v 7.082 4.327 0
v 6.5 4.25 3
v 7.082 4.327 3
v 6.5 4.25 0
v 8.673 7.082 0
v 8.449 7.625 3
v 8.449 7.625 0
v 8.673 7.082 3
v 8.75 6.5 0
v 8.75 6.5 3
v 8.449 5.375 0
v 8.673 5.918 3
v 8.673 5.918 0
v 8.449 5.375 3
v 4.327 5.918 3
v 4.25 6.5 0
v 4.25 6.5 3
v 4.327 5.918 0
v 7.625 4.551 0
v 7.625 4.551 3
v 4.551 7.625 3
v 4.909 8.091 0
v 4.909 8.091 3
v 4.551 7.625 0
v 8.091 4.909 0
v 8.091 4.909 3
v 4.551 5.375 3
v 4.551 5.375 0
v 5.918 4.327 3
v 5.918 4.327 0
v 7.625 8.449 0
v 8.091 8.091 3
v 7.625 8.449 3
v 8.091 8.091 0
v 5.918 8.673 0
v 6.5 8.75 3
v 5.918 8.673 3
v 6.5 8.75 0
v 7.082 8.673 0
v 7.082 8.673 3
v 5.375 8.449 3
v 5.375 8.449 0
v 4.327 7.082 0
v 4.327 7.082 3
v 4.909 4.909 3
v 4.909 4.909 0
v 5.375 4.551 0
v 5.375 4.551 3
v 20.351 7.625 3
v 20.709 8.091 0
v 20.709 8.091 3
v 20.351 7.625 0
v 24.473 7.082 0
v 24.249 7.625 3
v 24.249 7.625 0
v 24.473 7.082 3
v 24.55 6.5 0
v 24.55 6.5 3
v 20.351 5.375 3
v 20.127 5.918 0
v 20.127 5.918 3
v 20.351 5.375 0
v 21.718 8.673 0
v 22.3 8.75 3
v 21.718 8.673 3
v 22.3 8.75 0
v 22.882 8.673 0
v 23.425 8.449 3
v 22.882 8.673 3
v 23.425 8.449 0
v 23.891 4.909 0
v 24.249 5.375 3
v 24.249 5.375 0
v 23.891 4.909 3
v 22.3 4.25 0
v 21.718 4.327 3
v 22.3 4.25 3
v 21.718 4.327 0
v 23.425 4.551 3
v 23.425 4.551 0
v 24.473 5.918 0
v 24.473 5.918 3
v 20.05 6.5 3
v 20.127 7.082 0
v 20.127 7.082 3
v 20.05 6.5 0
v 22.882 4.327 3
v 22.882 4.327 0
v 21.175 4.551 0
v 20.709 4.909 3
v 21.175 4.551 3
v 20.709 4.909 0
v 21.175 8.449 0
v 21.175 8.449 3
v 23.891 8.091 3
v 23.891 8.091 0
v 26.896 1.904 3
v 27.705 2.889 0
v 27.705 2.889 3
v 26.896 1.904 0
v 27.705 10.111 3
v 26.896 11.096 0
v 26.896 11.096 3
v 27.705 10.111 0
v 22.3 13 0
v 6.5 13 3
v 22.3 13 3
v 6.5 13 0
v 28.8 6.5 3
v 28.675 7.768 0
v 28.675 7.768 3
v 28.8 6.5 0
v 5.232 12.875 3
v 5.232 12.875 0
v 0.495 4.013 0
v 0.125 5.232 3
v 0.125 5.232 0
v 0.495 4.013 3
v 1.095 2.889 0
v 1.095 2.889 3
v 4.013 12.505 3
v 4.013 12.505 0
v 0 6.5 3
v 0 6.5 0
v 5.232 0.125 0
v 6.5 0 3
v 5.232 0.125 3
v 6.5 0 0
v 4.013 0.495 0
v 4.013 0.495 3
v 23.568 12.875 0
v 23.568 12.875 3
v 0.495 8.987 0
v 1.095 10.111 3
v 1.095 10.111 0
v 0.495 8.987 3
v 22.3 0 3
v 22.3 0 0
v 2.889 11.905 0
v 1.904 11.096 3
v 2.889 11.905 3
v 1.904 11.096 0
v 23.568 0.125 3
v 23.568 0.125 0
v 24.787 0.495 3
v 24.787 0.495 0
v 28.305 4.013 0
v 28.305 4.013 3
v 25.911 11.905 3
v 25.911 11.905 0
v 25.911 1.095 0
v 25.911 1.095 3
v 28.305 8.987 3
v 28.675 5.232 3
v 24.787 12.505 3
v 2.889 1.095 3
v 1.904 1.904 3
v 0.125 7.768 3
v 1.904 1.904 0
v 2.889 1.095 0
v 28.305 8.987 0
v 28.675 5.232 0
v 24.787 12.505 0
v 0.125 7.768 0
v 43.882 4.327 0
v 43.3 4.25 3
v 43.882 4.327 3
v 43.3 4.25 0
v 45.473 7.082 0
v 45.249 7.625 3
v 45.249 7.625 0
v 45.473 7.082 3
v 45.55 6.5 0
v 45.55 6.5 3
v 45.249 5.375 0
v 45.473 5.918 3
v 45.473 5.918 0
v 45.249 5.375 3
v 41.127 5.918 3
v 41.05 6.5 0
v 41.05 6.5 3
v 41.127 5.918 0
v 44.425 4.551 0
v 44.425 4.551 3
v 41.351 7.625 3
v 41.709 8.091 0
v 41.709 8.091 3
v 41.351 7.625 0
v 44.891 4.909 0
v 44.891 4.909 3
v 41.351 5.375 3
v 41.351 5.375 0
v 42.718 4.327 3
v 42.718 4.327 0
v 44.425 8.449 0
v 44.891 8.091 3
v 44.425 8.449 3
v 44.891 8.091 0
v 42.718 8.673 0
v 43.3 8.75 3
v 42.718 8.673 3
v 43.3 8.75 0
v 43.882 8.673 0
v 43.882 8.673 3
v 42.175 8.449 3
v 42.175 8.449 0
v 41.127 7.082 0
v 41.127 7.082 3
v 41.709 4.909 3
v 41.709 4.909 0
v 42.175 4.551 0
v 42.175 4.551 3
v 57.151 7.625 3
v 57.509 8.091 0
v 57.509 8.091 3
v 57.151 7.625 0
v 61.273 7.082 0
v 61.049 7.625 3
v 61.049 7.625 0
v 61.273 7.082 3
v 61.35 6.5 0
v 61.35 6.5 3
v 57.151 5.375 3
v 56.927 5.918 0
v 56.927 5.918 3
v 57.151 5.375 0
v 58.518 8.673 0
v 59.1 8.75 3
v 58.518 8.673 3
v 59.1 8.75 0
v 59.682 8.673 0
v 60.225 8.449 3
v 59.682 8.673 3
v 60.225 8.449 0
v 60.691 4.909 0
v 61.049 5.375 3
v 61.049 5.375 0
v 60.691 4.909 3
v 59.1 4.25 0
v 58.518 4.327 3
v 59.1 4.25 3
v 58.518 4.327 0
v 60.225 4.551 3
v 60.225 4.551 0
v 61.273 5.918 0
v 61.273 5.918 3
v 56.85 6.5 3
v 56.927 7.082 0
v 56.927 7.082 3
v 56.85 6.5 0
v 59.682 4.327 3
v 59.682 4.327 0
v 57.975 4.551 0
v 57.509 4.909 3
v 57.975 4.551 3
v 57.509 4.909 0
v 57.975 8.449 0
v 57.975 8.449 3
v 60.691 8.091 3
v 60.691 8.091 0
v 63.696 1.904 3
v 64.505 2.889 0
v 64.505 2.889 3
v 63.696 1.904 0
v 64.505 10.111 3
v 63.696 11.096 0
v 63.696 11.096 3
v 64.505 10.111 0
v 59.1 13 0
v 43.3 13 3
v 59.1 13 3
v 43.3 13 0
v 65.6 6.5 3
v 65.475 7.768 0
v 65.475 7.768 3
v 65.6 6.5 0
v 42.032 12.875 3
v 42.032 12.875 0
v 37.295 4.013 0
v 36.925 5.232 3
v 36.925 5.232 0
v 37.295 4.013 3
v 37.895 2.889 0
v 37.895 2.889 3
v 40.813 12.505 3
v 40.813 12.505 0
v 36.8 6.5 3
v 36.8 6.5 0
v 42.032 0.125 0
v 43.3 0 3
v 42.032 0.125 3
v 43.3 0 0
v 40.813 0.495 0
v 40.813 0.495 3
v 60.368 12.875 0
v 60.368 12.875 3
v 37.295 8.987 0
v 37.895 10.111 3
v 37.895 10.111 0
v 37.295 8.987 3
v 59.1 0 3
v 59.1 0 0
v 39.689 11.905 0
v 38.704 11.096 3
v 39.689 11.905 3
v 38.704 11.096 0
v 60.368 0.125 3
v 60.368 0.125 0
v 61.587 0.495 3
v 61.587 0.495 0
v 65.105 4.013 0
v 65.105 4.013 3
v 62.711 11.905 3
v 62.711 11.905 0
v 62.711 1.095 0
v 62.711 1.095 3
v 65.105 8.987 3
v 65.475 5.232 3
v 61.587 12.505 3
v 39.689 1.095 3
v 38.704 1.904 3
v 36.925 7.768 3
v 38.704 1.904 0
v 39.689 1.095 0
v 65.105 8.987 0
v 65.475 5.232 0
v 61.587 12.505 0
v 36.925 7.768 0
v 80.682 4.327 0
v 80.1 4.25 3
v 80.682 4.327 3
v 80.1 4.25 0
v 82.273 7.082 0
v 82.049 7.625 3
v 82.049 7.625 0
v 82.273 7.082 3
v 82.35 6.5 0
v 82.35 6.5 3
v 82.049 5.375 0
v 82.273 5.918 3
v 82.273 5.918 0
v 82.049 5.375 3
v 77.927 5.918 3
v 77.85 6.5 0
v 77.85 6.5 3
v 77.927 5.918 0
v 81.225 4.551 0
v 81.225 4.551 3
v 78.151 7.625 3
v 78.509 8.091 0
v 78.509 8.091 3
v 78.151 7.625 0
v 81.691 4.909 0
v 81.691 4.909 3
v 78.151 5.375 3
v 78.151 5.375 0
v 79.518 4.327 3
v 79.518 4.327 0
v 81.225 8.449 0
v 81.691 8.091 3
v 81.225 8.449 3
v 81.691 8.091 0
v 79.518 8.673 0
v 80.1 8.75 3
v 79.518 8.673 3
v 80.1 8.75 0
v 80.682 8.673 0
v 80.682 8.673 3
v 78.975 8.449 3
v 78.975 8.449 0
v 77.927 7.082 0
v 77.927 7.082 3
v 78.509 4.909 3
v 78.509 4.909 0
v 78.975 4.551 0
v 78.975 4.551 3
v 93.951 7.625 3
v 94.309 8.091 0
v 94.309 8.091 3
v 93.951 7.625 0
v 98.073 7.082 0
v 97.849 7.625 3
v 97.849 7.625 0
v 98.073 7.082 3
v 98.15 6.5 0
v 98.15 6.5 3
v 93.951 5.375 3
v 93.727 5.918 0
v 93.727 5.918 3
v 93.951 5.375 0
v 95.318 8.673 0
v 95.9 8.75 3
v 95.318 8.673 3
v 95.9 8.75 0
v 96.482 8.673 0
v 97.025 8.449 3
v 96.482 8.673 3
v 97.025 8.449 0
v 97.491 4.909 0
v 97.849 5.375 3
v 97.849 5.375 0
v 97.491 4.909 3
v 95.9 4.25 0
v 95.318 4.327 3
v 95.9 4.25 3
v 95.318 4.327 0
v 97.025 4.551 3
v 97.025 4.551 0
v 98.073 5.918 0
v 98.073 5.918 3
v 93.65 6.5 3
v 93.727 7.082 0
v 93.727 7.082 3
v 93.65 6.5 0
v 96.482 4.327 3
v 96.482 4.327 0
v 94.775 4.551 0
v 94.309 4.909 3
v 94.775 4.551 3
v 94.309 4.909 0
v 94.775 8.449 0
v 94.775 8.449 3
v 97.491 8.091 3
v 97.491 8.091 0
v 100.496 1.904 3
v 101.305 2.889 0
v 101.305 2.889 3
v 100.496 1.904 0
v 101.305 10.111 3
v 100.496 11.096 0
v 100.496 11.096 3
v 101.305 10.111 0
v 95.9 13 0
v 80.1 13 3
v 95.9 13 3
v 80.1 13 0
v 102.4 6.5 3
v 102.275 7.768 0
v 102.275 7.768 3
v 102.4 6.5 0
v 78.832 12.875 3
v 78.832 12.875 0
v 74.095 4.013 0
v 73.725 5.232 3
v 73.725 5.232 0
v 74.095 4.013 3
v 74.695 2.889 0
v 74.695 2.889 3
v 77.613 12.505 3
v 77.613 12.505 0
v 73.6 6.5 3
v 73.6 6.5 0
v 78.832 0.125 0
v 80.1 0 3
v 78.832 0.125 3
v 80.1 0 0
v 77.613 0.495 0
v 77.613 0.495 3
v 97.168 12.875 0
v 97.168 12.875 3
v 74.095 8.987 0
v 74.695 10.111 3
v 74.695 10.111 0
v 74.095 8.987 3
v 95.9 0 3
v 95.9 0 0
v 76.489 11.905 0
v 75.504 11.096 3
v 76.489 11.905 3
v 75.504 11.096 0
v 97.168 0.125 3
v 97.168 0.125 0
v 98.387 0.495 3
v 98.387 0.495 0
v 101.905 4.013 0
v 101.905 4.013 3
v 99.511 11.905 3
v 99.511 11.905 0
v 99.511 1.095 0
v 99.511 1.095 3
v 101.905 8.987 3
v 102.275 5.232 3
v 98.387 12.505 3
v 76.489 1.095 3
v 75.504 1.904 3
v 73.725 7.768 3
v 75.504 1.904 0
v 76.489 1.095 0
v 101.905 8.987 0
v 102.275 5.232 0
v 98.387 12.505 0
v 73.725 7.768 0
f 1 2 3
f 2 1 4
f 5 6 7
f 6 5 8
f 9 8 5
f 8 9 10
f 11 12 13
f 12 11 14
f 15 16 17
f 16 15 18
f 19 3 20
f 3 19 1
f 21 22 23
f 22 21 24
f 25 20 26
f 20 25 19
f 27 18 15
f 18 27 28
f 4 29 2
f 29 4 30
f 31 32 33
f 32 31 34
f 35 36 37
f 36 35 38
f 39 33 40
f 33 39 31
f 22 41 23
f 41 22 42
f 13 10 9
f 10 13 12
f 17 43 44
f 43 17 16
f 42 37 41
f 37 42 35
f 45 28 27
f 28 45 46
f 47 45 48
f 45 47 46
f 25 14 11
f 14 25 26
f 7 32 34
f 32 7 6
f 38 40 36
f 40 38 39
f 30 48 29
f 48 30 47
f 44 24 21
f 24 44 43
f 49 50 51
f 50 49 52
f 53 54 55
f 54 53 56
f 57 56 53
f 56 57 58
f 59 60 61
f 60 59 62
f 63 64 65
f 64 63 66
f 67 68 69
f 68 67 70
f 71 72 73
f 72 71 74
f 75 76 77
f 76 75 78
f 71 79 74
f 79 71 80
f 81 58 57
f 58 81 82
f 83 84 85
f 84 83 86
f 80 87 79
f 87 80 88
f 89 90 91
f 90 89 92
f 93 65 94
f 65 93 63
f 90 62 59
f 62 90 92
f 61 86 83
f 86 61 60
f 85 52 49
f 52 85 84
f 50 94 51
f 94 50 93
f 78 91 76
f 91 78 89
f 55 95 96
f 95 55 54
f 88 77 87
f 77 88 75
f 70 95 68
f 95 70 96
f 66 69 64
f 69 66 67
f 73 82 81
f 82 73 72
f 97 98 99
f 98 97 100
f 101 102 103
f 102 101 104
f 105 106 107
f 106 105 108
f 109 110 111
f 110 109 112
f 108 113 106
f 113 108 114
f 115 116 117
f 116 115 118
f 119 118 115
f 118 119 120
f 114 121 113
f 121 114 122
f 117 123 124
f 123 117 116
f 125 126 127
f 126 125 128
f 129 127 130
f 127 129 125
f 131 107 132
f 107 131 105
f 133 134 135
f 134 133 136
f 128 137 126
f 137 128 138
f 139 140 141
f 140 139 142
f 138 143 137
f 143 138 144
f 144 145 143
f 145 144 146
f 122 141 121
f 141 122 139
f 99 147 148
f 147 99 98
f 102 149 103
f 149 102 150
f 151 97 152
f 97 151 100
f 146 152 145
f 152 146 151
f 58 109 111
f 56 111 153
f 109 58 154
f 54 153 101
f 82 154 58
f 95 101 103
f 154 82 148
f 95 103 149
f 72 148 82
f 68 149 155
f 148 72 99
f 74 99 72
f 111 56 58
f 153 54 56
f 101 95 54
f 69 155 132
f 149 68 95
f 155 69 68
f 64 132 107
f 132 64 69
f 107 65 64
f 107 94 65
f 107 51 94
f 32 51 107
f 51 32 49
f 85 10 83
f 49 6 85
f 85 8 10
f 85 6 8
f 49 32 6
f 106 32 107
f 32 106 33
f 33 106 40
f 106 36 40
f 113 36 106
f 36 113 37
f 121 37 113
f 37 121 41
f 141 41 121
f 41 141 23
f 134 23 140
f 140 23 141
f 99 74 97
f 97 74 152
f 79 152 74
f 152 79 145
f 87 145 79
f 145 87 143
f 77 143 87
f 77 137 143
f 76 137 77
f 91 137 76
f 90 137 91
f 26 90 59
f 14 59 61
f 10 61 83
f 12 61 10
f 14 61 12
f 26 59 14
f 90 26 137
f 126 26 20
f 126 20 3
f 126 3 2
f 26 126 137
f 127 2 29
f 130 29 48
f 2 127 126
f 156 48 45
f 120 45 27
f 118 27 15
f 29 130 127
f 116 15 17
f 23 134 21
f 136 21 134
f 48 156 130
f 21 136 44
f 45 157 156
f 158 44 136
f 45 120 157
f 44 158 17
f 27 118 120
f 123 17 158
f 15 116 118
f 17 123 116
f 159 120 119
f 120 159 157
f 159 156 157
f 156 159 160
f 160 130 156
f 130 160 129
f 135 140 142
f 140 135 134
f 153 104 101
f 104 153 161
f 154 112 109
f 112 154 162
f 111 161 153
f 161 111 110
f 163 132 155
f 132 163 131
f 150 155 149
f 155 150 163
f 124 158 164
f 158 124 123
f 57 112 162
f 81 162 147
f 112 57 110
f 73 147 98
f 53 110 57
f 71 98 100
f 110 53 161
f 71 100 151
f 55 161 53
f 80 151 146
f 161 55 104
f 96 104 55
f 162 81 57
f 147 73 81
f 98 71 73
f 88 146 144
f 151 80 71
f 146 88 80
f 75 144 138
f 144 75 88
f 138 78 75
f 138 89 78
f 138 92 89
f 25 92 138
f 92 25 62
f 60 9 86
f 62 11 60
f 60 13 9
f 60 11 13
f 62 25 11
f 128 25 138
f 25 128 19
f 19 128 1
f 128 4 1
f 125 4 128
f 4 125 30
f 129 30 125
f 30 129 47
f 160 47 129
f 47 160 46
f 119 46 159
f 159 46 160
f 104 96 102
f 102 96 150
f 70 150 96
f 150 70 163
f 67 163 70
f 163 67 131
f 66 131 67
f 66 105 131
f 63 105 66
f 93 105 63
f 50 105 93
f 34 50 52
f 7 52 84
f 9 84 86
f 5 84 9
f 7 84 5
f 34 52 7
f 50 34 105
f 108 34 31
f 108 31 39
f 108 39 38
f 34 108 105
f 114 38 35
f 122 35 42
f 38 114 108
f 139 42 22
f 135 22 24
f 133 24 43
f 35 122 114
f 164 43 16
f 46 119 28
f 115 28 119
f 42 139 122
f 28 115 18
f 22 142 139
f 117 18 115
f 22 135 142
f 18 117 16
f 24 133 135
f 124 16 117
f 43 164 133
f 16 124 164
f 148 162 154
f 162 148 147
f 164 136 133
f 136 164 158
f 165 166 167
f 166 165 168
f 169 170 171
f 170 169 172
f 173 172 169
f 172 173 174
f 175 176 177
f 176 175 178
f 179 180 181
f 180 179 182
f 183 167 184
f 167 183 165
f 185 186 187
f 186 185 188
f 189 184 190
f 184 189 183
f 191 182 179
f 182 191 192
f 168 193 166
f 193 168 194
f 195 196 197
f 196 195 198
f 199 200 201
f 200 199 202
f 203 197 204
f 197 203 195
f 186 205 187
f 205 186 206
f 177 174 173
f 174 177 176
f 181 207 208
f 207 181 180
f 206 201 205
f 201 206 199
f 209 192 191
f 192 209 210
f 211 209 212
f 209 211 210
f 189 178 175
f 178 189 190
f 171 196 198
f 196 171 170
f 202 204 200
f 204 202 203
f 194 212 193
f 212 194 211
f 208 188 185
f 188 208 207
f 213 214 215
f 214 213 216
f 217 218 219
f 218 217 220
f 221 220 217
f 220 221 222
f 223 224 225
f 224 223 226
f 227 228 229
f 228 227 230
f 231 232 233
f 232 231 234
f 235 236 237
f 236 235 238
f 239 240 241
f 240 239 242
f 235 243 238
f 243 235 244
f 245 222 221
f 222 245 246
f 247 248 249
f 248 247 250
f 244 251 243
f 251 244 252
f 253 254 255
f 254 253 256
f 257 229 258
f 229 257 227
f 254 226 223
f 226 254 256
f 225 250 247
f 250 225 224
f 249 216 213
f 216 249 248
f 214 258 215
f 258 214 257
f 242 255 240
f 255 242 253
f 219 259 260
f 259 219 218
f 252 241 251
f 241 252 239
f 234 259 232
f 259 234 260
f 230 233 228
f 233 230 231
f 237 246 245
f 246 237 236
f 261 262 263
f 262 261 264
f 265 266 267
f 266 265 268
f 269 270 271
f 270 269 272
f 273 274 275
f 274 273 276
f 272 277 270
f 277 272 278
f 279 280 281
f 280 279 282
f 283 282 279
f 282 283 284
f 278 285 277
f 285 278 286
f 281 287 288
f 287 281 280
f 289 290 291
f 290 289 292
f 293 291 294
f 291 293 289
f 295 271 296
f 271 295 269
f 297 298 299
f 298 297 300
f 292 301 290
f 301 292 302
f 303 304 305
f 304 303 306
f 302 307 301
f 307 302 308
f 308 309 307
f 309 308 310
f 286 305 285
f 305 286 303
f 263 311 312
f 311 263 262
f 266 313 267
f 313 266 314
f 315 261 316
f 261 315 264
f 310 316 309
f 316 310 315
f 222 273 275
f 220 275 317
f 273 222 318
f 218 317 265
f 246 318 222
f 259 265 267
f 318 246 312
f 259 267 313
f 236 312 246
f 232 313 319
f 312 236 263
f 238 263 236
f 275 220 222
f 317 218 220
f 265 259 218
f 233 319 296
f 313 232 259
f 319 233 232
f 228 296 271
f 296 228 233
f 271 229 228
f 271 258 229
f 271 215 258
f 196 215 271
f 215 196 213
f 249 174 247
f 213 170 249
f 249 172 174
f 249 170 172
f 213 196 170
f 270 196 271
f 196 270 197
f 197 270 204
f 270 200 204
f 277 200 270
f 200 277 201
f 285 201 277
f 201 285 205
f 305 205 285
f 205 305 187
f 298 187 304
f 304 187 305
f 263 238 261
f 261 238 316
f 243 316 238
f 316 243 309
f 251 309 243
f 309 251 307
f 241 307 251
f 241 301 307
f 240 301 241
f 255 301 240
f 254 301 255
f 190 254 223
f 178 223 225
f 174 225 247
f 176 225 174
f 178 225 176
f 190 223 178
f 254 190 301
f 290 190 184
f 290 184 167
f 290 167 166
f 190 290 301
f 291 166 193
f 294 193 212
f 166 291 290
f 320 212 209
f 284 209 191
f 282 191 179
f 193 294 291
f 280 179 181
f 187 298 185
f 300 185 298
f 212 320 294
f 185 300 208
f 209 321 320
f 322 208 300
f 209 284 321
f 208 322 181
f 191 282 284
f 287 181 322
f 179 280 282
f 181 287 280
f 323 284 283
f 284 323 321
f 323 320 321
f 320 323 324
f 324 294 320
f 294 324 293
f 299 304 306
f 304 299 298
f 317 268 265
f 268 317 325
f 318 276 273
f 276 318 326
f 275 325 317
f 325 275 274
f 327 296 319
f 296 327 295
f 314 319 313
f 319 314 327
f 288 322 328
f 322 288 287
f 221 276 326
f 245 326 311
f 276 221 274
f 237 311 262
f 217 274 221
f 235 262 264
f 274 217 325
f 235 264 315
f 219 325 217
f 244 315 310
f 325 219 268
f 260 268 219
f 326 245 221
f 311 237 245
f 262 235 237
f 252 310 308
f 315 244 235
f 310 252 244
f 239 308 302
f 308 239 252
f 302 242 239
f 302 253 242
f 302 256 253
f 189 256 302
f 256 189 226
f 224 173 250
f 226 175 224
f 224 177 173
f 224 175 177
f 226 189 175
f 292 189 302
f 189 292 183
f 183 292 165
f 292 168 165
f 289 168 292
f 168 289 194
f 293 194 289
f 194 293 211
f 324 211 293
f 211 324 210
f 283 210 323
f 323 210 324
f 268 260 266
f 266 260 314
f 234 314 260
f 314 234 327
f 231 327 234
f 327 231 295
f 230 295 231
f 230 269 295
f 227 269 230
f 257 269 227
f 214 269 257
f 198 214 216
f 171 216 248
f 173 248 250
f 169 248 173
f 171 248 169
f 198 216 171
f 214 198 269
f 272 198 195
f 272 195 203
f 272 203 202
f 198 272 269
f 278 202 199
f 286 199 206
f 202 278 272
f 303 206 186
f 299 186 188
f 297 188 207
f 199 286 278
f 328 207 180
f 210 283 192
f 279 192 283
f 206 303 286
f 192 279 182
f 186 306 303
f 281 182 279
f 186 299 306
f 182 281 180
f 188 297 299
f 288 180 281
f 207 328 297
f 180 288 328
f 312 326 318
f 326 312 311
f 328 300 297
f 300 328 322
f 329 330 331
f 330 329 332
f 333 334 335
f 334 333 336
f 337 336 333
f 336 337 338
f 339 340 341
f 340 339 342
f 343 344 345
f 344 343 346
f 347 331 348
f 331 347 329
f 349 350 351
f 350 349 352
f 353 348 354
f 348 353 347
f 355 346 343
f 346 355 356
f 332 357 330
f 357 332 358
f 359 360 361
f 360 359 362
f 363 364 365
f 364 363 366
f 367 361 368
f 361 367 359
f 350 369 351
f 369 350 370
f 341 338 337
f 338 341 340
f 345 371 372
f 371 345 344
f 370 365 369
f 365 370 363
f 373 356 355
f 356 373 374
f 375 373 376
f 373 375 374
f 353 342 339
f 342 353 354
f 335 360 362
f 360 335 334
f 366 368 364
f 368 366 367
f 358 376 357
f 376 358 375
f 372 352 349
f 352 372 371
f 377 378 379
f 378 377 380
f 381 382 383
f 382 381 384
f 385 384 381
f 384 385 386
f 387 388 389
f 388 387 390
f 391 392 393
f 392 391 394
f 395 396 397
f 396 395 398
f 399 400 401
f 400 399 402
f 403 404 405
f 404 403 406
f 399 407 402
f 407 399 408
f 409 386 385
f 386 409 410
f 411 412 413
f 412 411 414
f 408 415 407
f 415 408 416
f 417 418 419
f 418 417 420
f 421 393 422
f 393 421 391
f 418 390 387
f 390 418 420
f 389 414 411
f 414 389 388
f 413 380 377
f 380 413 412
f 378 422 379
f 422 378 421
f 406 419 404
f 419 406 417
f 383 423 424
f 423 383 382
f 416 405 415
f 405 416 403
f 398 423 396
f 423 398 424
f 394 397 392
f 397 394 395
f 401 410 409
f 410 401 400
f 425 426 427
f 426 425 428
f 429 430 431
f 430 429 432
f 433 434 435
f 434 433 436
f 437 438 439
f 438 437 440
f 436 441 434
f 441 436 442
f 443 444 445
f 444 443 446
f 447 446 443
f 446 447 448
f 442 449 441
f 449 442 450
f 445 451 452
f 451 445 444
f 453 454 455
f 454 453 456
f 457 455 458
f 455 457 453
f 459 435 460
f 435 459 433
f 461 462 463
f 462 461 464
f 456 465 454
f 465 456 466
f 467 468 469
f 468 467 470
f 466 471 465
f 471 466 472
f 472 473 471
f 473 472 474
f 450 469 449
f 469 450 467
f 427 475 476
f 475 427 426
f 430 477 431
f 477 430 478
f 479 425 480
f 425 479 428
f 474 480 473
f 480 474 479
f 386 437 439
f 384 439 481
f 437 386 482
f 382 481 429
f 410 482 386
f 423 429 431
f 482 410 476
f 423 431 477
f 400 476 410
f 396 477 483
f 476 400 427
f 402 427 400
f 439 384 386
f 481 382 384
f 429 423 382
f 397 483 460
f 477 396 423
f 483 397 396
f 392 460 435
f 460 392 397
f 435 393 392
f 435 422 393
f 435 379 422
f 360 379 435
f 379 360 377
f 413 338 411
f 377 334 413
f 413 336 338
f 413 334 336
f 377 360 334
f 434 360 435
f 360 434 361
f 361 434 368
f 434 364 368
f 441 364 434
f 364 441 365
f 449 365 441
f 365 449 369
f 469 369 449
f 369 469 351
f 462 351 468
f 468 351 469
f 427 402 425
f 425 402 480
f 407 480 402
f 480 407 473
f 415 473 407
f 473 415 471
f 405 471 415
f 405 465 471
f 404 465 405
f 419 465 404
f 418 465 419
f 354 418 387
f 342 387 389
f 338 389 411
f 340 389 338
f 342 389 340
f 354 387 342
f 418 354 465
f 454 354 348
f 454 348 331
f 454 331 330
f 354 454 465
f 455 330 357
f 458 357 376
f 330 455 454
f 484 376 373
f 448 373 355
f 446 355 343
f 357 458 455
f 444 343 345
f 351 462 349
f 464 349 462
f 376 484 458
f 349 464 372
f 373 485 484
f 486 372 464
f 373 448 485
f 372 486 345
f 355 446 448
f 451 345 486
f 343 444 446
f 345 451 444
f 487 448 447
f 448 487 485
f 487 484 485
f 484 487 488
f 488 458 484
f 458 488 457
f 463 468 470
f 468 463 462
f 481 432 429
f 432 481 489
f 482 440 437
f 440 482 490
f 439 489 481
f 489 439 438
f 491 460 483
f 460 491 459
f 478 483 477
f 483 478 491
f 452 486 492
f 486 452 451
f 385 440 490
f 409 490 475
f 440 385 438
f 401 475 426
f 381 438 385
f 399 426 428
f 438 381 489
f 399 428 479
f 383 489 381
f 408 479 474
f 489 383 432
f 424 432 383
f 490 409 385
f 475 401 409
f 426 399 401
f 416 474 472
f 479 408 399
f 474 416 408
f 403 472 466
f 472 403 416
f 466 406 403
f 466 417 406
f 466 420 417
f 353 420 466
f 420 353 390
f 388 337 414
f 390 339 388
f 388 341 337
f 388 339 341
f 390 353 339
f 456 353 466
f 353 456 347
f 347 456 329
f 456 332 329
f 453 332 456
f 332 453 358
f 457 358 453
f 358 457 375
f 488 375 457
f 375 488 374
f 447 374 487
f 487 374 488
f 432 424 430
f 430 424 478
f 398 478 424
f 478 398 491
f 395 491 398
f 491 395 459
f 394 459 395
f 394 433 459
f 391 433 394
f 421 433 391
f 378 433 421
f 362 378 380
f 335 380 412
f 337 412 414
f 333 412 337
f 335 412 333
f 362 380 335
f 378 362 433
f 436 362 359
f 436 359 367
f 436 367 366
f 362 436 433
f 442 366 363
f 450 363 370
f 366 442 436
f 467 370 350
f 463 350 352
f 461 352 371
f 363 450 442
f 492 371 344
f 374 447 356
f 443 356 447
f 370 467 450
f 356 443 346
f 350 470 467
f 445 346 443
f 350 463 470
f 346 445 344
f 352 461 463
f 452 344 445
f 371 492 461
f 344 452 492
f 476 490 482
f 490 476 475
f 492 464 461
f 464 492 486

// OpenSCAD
// file: ../panel_pair_joiner.scad
// Removable seam joiner for the four-panel enclosure.
//
// Each joiner spans one adjacent pair of 256 mm LED/enclosure modules and
// reuses the existing top-row panel/enclosure closure screws nearest the seam.
// No new holes are introduced in either the LED panel or enclosure.

hinge_part = undef;
include <direct_mount_enclosure.scad>;

panel_pair_joiner_t = 3.0;
panel_pair_joiner_outer_d = 13.0;
panel_pair_joiner_hole_d = panel_mount_hole_d;
panel_pair_joiner_print_gap = 8.0;

panel_pair_joiner_left_edge_offset =
    module_w - panel_mount_x[len(panel_mount_x)-1];
panel_pair_joiner_right_edge_offset = panel_mount_x[0];
panel_pair_joiner_hole_spacing =
    panel_pair_joiner_left_edge_offset + panel_pair_joiner_right_edge_offset;
panel_pair_joiner_length =
    panel_pair_joiner_hole_spacing + panel_pair_joiner_outer_d;

assert(
    abs(panel_pair_joiner_hole_spacing-15.8) < 0.01,
    "panel-pair joiner must track the measured 15.8 mm seam hole spacing"
);
assert(
    abs(panel_pair_joiner_hole_d-4.5) < 0.01,
    "panel-pair joiner must reuse the 4.5 mm closure-hole clearance"
);

module panel_pair_joiner() {
    r = panel_pair_joiner_outer_d/2;
    left_x = r;
    right_x = r + panel_pair_joiner_hole_spacing;
    yc = r;

    difference() {
        hull() {
            translate([left_x,yc,0])
                cylinder(d=panel_pair_joiner_outer_d,h=panel_pair_joiner_t,$fn=32);
            translate([right_x,yc,0])
                cylinder(d=panel_pair_joiner_outer_d,h=panel_pair_joiner_t,$fn=32);
        }

        for (xx=[left_x,right_x])
            translate([xx,yc,-0.2])
                cylinder(d=panel_pair_joiner_hole_d,h=panel_pair_joiner_t+0.4,$fn=24);
    }
}

module panel_pair_joiners_print(count=3) {
    assert(count >= 1);

    for (i=[0:count-1])
        translate([
            i*(panel_pair_joiner_length+panel_pair_joiner_print_gap),
            0,
            0
        ])
            panel_pair_joiner();
}

module panel_pair_joiner_installed(seam_x) {
    // Place the joiner on the accessible rear face of the shallow top wall.
    // Its two holes land exactly on the right-most closure hole of the module
    // to the left and the left-most closure hole of the module to the right.
    translate([
        seam_x-panel_pair_joiner_left_edge_offset-panel_pair_joiner_outer_d/2,
        panel_closure_y-panel_pair_joiner_outer_d/2,
        equipment_backplane_top_rear_z
    ])
        panel_pair_joiner();
}

module all_panel_pair_joiners_installed() {
    for (seam=[1:3])
        panel_pair_joiner_installed(seam*module_w);
}
// main file
include <../panel_pair_joiner.scad>;
panel_pair_joiners_print(3);
